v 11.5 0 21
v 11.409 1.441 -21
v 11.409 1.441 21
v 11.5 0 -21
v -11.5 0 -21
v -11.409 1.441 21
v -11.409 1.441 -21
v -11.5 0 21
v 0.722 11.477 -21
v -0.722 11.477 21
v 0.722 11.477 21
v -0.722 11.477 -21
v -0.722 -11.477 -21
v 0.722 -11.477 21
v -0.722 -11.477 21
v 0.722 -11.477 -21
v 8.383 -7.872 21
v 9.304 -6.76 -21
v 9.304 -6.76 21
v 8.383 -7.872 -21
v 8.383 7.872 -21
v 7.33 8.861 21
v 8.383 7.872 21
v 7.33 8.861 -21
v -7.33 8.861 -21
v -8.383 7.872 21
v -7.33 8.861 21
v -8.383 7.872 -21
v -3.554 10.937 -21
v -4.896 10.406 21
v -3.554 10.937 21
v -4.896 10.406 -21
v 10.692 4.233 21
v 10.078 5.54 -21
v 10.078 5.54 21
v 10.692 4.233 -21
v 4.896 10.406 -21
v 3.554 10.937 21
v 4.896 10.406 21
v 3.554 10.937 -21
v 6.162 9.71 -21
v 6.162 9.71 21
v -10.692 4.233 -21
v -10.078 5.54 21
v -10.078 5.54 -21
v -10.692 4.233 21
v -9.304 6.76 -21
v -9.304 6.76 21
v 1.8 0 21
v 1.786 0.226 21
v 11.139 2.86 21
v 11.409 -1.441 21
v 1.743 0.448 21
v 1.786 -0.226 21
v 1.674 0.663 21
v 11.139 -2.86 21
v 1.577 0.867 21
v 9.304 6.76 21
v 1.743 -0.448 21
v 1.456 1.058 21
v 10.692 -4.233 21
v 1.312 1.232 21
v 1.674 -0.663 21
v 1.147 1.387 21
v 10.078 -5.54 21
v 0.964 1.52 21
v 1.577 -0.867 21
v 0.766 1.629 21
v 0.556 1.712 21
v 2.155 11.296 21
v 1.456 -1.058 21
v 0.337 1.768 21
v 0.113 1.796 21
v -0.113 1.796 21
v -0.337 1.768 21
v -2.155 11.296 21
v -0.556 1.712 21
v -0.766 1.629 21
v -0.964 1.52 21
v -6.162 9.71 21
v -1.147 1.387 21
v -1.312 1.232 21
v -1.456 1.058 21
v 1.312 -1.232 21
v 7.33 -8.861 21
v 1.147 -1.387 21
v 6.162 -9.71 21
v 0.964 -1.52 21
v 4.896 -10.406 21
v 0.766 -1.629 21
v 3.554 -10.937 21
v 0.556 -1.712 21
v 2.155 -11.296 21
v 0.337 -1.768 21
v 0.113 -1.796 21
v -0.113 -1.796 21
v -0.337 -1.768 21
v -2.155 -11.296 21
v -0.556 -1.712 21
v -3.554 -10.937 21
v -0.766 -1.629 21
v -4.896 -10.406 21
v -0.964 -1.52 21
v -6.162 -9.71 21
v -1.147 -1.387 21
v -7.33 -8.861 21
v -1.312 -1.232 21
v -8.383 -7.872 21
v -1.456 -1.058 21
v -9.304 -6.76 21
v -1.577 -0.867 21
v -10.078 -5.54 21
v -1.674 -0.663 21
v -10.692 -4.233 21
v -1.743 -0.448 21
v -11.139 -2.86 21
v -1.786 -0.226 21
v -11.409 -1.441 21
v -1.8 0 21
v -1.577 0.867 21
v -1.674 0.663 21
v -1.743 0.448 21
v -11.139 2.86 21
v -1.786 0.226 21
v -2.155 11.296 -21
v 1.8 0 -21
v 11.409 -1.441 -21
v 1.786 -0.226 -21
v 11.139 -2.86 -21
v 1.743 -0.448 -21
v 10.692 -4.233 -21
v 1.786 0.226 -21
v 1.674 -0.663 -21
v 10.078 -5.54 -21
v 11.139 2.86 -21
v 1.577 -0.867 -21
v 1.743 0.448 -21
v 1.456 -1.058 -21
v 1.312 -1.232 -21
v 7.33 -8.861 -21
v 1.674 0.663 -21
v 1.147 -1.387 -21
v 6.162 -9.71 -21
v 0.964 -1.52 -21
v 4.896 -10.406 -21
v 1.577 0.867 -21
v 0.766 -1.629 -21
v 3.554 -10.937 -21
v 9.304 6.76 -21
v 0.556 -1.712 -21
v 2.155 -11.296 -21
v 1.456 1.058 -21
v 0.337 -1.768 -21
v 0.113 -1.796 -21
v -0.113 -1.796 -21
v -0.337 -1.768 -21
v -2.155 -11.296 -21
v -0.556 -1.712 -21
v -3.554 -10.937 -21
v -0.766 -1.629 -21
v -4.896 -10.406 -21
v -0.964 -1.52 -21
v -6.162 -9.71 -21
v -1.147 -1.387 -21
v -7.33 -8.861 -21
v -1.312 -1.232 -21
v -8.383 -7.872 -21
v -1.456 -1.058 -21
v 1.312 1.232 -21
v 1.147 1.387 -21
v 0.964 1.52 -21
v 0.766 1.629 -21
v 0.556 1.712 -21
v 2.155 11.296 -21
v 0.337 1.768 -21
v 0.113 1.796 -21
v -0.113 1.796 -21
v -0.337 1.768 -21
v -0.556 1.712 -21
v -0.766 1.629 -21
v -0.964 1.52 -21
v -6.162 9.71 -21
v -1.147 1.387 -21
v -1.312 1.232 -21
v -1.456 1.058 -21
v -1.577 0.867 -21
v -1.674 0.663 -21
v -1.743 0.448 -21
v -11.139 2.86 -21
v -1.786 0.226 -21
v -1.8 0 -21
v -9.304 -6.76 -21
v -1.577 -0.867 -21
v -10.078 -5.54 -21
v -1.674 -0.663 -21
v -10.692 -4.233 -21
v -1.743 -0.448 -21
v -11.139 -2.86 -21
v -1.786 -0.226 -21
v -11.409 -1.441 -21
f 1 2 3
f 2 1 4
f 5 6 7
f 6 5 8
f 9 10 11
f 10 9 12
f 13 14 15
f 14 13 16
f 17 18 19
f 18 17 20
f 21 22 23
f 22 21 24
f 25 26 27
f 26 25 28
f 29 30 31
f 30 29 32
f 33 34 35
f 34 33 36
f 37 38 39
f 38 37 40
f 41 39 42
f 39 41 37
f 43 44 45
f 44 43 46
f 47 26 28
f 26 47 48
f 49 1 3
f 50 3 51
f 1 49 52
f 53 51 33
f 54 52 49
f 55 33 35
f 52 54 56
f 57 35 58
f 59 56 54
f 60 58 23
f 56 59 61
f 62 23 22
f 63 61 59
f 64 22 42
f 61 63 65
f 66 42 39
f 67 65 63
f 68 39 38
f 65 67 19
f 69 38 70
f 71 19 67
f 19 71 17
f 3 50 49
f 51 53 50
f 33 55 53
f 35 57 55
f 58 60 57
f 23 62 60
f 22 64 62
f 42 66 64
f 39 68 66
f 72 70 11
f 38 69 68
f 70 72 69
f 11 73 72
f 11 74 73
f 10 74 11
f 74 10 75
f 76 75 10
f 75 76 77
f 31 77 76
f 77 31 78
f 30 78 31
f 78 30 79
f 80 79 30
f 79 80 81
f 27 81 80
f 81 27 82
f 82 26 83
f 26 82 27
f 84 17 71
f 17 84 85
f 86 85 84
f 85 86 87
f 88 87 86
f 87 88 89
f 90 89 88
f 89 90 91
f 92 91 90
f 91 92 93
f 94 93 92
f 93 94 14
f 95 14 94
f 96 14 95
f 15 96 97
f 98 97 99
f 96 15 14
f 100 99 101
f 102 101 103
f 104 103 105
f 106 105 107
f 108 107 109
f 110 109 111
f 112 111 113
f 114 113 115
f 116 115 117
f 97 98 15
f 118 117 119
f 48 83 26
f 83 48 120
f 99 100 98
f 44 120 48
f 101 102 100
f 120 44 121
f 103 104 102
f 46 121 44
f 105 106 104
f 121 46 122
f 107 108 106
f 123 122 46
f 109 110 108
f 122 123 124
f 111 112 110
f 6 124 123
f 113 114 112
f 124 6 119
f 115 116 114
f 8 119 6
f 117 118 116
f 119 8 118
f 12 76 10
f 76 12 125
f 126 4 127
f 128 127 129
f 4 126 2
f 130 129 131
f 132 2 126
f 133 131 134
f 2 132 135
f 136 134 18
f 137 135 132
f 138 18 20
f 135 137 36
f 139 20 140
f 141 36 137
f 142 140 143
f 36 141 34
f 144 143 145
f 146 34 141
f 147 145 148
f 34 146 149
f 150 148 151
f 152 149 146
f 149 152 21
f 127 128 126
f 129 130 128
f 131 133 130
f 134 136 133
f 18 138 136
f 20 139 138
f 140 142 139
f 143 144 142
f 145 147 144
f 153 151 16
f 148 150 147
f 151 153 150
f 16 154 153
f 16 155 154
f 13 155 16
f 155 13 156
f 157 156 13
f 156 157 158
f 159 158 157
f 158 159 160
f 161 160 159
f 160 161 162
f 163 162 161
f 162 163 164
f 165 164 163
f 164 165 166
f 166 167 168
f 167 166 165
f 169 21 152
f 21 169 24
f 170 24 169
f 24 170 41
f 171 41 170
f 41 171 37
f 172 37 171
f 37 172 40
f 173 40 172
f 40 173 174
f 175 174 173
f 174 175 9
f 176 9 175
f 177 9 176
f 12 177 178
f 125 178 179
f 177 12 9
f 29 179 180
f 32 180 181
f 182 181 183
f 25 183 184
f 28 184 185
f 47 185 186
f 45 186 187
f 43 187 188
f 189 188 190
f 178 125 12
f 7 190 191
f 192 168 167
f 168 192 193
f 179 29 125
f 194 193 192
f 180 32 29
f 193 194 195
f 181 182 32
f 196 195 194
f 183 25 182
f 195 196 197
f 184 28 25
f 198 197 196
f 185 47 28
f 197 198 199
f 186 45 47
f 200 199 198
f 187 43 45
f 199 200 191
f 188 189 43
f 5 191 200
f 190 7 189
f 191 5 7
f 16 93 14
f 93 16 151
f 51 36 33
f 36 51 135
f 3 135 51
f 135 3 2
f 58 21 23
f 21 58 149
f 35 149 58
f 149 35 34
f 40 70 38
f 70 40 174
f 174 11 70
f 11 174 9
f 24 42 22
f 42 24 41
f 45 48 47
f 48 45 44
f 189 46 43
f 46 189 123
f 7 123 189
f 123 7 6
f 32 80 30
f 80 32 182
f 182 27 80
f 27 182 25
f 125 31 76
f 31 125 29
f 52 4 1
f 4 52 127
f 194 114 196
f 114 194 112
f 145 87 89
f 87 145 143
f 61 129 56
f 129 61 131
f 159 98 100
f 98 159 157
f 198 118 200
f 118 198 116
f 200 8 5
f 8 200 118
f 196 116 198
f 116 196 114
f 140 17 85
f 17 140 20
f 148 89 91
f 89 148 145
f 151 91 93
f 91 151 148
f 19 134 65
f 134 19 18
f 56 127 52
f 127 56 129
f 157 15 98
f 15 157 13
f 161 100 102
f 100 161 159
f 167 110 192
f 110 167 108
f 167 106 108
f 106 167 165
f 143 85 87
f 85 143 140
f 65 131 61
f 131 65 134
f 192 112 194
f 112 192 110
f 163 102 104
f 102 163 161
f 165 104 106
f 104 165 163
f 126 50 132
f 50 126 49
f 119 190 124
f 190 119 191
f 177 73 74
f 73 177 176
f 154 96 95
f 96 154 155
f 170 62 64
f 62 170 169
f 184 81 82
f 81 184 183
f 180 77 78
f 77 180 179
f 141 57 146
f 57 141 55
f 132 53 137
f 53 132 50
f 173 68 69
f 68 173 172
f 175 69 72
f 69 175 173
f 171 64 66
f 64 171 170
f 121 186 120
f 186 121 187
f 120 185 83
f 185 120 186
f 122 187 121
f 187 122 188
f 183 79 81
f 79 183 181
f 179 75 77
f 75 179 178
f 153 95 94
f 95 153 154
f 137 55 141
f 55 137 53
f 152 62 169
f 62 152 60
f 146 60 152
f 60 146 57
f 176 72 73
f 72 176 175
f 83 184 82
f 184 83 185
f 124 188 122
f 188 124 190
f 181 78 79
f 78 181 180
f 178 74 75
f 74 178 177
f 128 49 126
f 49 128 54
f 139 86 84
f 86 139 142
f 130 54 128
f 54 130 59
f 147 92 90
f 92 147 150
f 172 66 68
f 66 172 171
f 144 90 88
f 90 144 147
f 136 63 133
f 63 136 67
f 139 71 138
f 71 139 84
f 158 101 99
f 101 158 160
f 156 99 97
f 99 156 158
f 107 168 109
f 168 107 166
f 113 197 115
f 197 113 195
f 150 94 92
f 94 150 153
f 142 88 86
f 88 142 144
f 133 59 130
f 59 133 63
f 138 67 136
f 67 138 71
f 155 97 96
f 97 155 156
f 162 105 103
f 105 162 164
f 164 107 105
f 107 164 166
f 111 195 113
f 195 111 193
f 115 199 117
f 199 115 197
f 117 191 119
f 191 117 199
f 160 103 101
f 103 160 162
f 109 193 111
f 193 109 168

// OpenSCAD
$fn = 50;


difference() {
	union() {
		translate(v = [0, 0, -21.0000000000]) {
			cylinder(h = 42, r = 11.5000000000);
		}
	}
	union() {
		translate(v = [0, 0, -100.0000000000]) {
			cylinder(h = 200, r = 1.8000000000);
		}
	}
}
